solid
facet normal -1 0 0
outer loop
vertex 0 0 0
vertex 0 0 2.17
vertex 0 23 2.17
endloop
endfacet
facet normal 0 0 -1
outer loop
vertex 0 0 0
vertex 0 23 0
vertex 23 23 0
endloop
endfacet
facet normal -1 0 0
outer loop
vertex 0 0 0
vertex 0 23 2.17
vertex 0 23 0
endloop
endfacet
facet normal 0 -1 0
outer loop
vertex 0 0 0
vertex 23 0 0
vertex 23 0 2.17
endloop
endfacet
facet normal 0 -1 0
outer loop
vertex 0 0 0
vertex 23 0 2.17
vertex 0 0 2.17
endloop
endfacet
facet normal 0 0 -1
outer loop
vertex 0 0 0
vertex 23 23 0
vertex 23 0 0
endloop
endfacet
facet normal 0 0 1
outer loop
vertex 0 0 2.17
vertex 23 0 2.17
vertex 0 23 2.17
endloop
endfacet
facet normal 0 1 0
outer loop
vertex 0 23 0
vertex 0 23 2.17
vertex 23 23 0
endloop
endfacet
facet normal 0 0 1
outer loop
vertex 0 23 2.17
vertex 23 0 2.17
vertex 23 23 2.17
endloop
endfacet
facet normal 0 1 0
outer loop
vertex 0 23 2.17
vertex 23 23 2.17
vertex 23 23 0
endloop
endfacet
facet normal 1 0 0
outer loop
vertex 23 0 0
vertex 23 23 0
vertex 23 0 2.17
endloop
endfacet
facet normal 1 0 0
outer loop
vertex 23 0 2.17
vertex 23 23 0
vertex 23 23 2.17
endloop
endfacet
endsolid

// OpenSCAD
/* Warning, this is a very basic generator with a lot of approximation 
input data : [FBGA, BUC, 23x23x2.17mm, 773, , A, C04-25196A]
generated by com.zoubworld.electronics.cad.model3d.Basic
Date : Sun Feb 15 10:50:49 CET 2026
*/

//body
color("black")
translate([0,0,0])
cube([23.0,23.0,2.17], center=false);
